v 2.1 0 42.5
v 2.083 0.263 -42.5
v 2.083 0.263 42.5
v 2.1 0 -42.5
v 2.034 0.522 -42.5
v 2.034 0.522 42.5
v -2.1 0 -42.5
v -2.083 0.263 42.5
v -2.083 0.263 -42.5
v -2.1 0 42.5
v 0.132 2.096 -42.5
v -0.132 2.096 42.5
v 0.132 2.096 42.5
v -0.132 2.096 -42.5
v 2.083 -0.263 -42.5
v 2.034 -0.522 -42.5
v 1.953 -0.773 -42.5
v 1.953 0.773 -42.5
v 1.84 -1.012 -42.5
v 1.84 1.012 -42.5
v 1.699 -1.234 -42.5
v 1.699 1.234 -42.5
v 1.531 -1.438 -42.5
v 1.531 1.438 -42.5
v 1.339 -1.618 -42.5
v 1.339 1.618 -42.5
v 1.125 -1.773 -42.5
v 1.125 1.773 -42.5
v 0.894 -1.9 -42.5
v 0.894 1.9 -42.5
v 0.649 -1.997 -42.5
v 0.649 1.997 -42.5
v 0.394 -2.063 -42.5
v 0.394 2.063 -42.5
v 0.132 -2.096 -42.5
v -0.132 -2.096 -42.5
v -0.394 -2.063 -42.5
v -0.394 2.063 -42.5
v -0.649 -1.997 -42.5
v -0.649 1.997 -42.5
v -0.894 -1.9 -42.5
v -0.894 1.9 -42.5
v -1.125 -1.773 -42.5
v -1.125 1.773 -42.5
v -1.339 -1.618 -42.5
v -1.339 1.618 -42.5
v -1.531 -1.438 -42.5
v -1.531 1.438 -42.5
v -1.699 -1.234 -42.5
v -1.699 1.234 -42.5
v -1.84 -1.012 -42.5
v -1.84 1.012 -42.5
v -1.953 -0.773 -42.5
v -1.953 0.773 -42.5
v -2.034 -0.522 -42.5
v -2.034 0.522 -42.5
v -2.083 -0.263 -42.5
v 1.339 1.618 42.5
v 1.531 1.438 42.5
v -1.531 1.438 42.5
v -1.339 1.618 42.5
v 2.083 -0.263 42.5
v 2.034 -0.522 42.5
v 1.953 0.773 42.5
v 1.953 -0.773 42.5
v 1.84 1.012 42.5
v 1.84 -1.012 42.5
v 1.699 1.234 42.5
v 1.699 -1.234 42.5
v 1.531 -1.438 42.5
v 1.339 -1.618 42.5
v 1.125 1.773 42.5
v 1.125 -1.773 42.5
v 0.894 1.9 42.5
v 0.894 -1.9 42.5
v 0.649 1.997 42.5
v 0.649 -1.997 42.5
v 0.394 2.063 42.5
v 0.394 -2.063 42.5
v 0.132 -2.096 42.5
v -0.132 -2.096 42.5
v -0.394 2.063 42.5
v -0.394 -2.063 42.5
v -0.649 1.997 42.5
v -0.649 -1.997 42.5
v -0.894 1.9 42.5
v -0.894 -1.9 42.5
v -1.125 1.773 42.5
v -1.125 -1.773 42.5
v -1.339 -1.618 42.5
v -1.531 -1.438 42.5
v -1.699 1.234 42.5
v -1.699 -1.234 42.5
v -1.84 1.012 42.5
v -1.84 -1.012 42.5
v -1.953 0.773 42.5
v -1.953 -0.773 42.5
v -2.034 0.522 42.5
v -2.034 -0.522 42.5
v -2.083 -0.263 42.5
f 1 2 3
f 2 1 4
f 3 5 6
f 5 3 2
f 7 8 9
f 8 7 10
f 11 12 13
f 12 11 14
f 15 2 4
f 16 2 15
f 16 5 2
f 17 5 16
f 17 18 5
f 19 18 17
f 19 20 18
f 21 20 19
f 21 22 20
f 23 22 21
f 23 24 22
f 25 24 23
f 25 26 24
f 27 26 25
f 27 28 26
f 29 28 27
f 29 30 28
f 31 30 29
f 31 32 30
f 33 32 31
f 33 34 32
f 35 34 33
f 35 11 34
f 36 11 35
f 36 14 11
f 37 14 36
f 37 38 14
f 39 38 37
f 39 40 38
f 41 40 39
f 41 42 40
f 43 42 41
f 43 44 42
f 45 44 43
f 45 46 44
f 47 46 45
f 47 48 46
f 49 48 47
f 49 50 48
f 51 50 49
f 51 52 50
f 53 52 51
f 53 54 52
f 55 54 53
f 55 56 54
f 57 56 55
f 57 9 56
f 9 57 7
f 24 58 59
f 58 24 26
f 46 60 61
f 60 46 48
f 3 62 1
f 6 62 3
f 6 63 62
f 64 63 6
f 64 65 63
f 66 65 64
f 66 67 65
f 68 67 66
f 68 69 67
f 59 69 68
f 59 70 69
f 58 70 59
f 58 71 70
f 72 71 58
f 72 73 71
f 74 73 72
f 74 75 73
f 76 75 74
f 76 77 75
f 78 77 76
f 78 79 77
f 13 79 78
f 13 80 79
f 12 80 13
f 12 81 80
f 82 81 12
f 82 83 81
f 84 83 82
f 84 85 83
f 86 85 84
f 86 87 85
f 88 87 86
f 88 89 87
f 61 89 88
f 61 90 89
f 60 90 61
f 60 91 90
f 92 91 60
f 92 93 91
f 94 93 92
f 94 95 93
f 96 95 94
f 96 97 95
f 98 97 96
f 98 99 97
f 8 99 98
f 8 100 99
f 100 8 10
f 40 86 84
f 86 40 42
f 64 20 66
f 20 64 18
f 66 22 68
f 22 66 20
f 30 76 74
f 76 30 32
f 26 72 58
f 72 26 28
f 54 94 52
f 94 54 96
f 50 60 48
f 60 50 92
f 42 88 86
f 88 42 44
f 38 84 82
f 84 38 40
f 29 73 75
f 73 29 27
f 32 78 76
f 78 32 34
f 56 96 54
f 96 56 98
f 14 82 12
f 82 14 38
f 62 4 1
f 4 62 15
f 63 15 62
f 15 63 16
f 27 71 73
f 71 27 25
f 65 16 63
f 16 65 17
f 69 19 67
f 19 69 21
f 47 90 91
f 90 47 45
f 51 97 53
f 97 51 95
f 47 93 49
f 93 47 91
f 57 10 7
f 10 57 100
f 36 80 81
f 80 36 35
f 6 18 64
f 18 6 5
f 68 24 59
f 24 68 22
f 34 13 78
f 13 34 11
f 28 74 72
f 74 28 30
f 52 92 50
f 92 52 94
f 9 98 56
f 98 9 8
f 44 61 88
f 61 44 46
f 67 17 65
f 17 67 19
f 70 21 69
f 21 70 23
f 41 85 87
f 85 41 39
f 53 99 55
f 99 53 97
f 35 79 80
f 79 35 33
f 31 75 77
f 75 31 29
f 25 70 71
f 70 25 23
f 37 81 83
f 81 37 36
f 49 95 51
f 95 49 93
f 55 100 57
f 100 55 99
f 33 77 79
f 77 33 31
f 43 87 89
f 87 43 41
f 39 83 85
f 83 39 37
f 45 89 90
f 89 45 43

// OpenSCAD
$fn = 50;


difference() {
	union() {
		translate(v = [0, 0, -42.5000000000]) {
			cylinder(h = 85, r = 2.1000000000);
		}
	}
	union() {
		translate(v = [0, 0, -100.0000000000]) {
			cylinder(h = 200, r = 0);
		}
	}
}
